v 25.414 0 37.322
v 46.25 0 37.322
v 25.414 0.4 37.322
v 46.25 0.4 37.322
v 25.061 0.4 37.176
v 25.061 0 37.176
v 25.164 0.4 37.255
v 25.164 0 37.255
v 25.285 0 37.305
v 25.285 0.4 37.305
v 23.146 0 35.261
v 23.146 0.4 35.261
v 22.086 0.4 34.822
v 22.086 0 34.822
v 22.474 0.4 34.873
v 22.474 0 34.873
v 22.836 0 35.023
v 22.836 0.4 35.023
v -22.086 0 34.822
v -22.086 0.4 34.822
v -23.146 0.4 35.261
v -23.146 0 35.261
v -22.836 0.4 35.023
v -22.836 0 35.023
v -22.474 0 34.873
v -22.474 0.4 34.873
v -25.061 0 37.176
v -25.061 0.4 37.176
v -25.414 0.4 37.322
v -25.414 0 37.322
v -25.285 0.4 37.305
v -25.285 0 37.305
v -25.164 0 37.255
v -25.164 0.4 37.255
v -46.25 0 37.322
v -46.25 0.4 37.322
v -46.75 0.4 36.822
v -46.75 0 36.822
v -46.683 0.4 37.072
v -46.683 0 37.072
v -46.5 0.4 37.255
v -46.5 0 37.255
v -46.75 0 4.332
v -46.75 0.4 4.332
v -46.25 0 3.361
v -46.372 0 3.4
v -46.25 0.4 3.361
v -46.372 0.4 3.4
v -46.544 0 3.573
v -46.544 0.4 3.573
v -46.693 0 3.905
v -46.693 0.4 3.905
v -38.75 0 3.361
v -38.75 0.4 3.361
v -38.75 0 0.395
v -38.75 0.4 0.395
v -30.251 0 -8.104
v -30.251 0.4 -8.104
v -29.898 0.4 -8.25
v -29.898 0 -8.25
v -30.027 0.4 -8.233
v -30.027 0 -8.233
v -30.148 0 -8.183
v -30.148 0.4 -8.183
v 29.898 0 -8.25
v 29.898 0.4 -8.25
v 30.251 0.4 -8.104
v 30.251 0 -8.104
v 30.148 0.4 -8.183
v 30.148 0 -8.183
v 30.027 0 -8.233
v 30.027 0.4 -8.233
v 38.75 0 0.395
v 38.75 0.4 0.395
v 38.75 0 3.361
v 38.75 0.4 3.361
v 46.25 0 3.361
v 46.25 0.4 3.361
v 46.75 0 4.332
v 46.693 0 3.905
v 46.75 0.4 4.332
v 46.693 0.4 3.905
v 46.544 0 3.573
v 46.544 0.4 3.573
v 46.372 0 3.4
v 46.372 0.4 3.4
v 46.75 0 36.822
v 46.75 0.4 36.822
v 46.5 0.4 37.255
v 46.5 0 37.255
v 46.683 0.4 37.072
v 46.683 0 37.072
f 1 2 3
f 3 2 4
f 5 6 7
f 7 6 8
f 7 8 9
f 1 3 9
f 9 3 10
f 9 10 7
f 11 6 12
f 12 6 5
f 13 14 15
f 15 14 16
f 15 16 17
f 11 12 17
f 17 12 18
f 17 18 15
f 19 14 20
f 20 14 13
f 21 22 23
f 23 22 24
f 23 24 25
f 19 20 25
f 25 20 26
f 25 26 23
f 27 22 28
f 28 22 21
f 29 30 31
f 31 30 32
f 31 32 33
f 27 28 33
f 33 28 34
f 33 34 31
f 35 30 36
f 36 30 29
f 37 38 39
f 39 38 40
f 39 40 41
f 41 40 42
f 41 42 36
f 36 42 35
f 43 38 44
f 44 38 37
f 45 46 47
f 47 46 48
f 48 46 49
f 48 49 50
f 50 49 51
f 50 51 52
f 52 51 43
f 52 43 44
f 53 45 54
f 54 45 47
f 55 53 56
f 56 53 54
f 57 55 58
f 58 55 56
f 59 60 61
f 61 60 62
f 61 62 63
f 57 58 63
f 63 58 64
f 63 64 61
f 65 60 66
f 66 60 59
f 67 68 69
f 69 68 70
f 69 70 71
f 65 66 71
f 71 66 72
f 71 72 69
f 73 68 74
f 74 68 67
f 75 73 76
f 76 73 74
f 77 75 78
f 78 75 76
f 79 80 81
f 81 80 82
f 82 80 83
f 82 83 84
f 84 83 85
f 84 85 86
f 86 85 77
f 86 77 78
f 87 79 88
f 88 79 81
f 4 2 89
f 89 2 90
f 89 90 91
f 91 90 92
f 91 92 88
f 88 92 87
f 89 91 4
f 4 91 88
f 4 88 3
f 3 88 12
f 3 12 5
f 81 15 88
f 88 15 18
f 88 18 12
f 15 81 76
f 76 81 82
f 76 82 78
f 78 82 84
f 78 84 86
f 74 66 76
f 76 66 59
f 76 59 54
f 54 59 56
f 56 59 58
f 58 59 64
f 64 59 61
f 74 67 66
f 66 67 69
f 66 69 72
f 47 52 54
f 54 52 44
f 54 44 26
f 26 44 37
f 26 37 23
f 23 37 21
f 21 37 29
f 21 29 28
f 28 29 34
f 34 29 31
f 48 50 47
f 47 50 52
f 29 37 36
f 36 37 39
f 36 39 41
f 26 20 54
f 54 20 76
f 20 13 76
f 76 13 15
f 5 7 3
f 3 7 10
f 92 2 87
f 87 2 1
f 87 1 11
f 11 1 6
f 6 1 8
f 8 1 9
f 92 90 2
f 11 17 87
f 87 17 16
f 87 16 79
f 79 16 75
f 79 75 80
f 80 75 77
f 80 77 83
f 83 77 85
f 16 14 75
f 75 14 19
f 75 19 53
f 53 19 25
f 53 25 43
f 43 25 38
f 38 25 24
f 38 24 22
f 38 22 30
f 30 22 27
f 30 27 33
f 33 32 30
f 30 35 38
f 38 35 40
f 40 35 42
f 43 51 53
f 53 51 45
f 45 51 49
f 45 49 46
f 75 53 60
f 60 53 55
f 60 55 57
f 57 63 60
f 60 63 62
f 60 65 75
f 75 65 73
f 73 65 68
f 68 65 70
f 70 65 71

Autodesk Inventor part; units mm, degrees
ref_plane "YZ Plane" through (0, 0, 0) normal (1, 0, 0) x (0, 1, 0)
ref_plane "XZ Plane" through (0, 0, 0) normal (0, 1, 0) x (-1, 0, 0)
ref_plane "XY Plane" through (0, 0, 0) normal (0, 0, 1) x (1, 0, 0)
sketch "Náčrt1" plane through (0, 0, 0) normal (0, 1, 0) x (-1, 0, 0)
  line L0 (24, -47.25) -> (19.6818, -47.25)
  line L1 (24, -47.25) -> (24, -17.0868)
  line L2 (24, -17.0868) -> (49.75, -17.0868)
  line L3 (49.75, 48.4103) -> (49.75, -17.0868)
  line L4 (49.75, 48.4103) -> (-49.75, 48.4103)
  line L5 (-49.75, 48.4103) -> (-49.75, -17.0868)
  line L6 (-24, -17.0868) -> (-49.75, -17.0868)
  line L7 (-24, -47.25) -> (-24, -17.0868)
  line L8 (-19.6818, -47.25) -> (-24, -47.25)
  arc A0 (-18.3182, -47.25) -> (-19.6818, -47.25) centre (-19, -43.5625) ccw
  line L9 (-12, -47.25) -> (-18.3182, -47.25)
  line L10 (-12, -47.25) -> (-12, -40)
  line L11 (-12, -40) -> (-3.25, -40)
  arc A1 (-3, -40.25) -> (-3.25, -40) centre (-3.25, -40.25) ccw
  line L12 (-3, -40.25) -> (-3, -40.6521)
  arc A2 (-3, -40.6521) -> (-2.6294, -40.8711) centre (-2.75, -40.6521) ccw
  arc A3 (2.0811, -47.25) -> (-2.6294, -40.8711) centre (-0.7, -44.375) ccw
  line L13 (18.3182, -47.25) -> (2.0811, -47.25)
  arc A4 (19.6818, -47.25) -> (18.3182, -47.25) centre (19, -43.5625) ccw
  arc A5 (-30.6049, -8.4571) -> (-29.8978, -8.75) centre (-29.8978, -7.75) ccw
  line L14 (-30.6049, -8.4571) -> (-39.25, 0.188)
  line L15 (-39.25, 2.8608) -> (-39.25, 0.188)
  line L16 (-46.25, 2.8608) -> (-39.25, 2.8608)
  ellipse E0 centre (-46.25, 4.3321) end of major axis (-46.25, 2.8608) minor radius 1 (-47.25, 4.3321) -> (-46.25, 2.8608) ccw
  line L17 (-47.25, 4.3321) -> (-47.25, 36.8221)
  arc A6 (-46.25, 37.8221) -> (-47.25, 36.8221) centre (-46.25, 36.8221) ccw
  line L18 (-46.25, 37.8221) -> (-45.25, 37.8221)
  arc A7 (-45.25, 37.8221) -> (-44.25, 38.8221) centre (-45.25, 38.8221) ccw
  line L19 (-44.25, 41.8041) -> (-44.25, 38.8221)
  arc A8 (-36.75, 41.8041) -> (-44.25, 41.8041) centre (-40.5, 41.8041) ccw
  line L20 (-36.75, 38.8221) -> (-36.75, 41.8041)
  arc A9 (-36.75, 38.8221) -> (-35.75, 37.8221) centre (-35.75, 38.8221) ccw
  line L21 (-35.75, 37.8221) -> (-25.4142, 37.8221)
  arc A10 (-24.7071, 37.5292) -> (-25.4142, 37.8221) centre (-25.4142, 36.8221) ccw
  line L22 (-22.7929, 35.615) -> (-24.7071, 37.5292)
  arc A11 (-22.7929, 35.615) -> (-22.0858, 35.3221) centre (-22.0858, 36.3221) ccw
  line L23 (-22.0858, 35.3221) -> (22.0858, 35.3221)
  arc A12 (22.0858, 35.3221) -> (22.7929, 35.615) centre (22.0858, 36.3221) ccw
  line L24 (22.7929, 35.615) -> (24.7071, 37.5292)
  arc A13 (25.4142, 37.8221) -> (24.7071, 37.5292) centre (25.4142, 36.8221) ccw
  line L25 (35.75, 37.8221) -> (25.4142, 37.8221)
  arc A14 (35.75, 37.8221) -> (36.75, 38.8221) centre (35.75, 38.8221) ccw
  line L26 (36.75, 38.8221) -> (36.75, 41.8041)
  arc A15 (44.25, 41.8041) -> (36.75, 41.8041) centre (40.5, 41.8041) ccw
  line L27 (44.25, 41.8041) -> (44.25, 38.8221)
  arc A16 (44.25, 38.8221) -> (45.25, 37.8221) centre (45.25, 38.8221) ccw
  line L28 (46.25, 37.8221) -> (45.25, 37.8221)
  arc A17 (47.25, 36.8221) -> (46.25, 37.8221) centre (46.25, 36.8221) ccw
  line L29 (47.25, 4.3321) -> (47.25, 36.8221)
  ellipse E1 centre (46.25, 4.3321) end of major axis (46.25, 2.8608) minor radius 1 (46.25, 2.8608) -> (47.25, 4.3321) ccw
  line L30 (46.25, 2.8608) -> (39.25, 2.8608)
  line L31 (39.25, 2.8608) -> (39.25, 0.188)
  line L32 (30.6049, -8.4571) -> (39.25, 0.188)
  arc A18 (29.8978, -8.75) -> (30.6049, -8.4571) centre (29.8978, -7.75) ccw
  line L33 (29.8978, -8.75) -> (-29.8978, -8.75)
  line L34 (-3.45, -32.125) -> (-3.45, -26.625)
  line L35 (-3.45, -26.625) -> (2.05, -26.625)
  line L36 (2.05, -26.625) -> (2.05, -32.125)
  line L37 (2.05, -32.125) -> (-3.45, -32.125)
  line L38 (6.3401, -40.3942) -> (9.6599, -40.3942)
  line L39 (9.6599, -40.3942) -> (11.3198, -43.2692)
  line L40 (11.3198, -43.2692) -> (9.6599, -46.1442)
  line L41 (9.6599, -46.1442) -> (6.3401, -46.1442)
  line L42 (6.3401, -46.1442) -> (4.6802, -43.2692)
  line L43 (4.6802, -43.2692) -> (6.3401, -40.3942)
  circle A19 centre (-19, -22.9375) radius 1.75
  circle A20 centre (-20, 39.763) radius 1.75
  circle A21 centre (20, 39.763) radius 1.75
  circle A22 centre (19, -22.9375) radius 1.75
  circle A23 centre (42.25, -8.75) radius 1.75
  circle A24 centre (-42.25, -8.75) radius 1.75
  line L44 (38.75, 0.3951) -> (38.75, 3.3608)
  line L45 (38.75, 3.3608) -> (46.25, 3.3608)
  line L46 (46.75, 4.3321) -> (46.75, 36.8221)
  arc A25 (46.75, 36.8221) -> (46.25, 37.3221) centre (46.25, 36.8221) ccw
  line L47 (46.25, 37.3221) -> (45.25, 37.3221)
  arc A26 (43.75, 38.8221) -> (45.25, 37.3221) centre (45.25, 38.8221) ccw
  line L48 (43.75, 38.8221) -> (43.75, 41.8041)
  arc A27 (43.75, 41.8041) -> (37.25, 41.8041) centre (40.5, 41.8041) ccw
  line L49 (37.25, 41.8041) -> (37.25, 38.8221)
  arc A28 (35.75, 37.3221) -> (37.25, 38.8221) centre (35.75, 38.8221) ccw
  line L50 (35.75, 37.3221) -> (25.4142, 37.3221)
  arc A29 (25.4142, 37.3221) -> (25.0607, 37.1756) centre (25.4142, 36.8221) ccw
  line L51 (25.0607, 37.1756) -> (23.1464, 35.2614)
  arc A30 (22.0858, 34.8221) -> (23.1464, 35.2614) centre (22.0858, 36.3221) ccw
  line L52 (22.0858, 34.8221) -> (-22.0858, 34.8221)
  arc A31 (-23.1464, 35.2614) -> (-22.0858, 34.8221) centre (-22.0858, 36.3221) ccw
  line L53 (-23.1464, 35.2614) -> (-25.0607, 37.1756)
  arc A32 (-25.0607, 37.1756) -> (-25.4142, 37.3221) centre (-25.4142, 36.8221) ccw
  line L54 (-25.4142, 37.3221) -> (-35.75, 37.3221)
  arc A33 (-37.25, 38.8221) -> (-35.75, 37.3221) centre (-35.75, 38.8221) ccw
  line L55 (-37.25, 38.8221) -> (-37.25, 41.8041)
  arc A34 (-37.25, 41.8041) -> (-43.75, 41.8041) centre (-40.5, 41.8041) ccw
  line L56 (-43.75, 41.8041) -> (-43.75, 38.8221)
  arc A35 (-45.25, 37.3221) -> (-43.75, 38.8221) centre (-45.25, 38.8221) ccw
  line L57 (-45.25, 37.3221) -> (-46.25, 37.3221)
  arc A36 (-46.25, 37.3221) -> (-46.75, 36.8221) centre (-46.25, 36.8221) ccw
  line L58 (-46.75, 36.8221) -> (-46.75, 4.3321)
  line L59 (-46.25, 3.3608) -> (-38.75, 3.3608)
  line L60 (-38.75, 3.3608) -> (-38.75, 0.3951)
  line L61 (-38.75, 0.3951) -> (-30.2513, -8.1036)
  arc A37 (-30.2513, -8.1036) -> (-29.8978, -8.25) centre (-29.8978, -7.75) ccw
  line L62 (-29.8978, -8.25) -> (29.8978, -8.25)
  arc A38 (29.8978, -8.25) -> (30.2513, -8.1036) centre (29.8978, -7.75) ccw
  line L63 (30.2513, -8.1036) -> (38.75, 0.3951)
  line L64 (45.25, 37.3221) -> (35.75, 37.3221)
  line L65 (-35.75, 37.3221) -> (-45.25, 37.3221)
  spline S0 degree 5 poles (46.25, 3.3609) (46.281, 3.3609) (46.3118, 3.3675) (46.3409, 3.3802) (46.4606, 3.4487) (46.5476, 3.5625) (46.6014, 3.6535) (46.6833, 3.8417) (46.7286, 4.0407) (46.7429, 4.1374) (46.75, 4.2348) (46.75, 4.3321) knots 0 0 0 0 0 0 0.13219 0.13219 0.13219 0.585181 0.585181 0.585181 1 1 1 1 1 1
  spline S1 degree 5 poles (-46.75, 4.3321) (-46.75, 4.2348) (-46.7429, 4.1374) (-46.7286, 4.0407) (-46.6833, 3.8417) (-46.6014, 3.6535) (-46.5476, 3.5625) (-46.4606, 3.4487) (-46.3409, 3.3802) (-46.3118, 3.3675) (-46.281, 3.3609) (-46.25, 3.3609) knots 0 0 0 0 0 0 0.414819 0.414819 0.414819 0.86781 0.86781 0.86781 1 1 1 1 1 1
  point P0 (0, 0)
  point P1 (0, 0)
  dimension "d0" = 0.5
extrude "Vysunutí1" add sketch "Náčrt1" along normal blind 0.4 contours L63 A38 L62 A37 L61 L60 L59 S1 L58 A36 L57 L65 L54 A32 L53 A31 L52 A30 L51 A29 L50 L64 L47 A25 L46 S0 L45 L44
properties part number "base_plate_isolation"
